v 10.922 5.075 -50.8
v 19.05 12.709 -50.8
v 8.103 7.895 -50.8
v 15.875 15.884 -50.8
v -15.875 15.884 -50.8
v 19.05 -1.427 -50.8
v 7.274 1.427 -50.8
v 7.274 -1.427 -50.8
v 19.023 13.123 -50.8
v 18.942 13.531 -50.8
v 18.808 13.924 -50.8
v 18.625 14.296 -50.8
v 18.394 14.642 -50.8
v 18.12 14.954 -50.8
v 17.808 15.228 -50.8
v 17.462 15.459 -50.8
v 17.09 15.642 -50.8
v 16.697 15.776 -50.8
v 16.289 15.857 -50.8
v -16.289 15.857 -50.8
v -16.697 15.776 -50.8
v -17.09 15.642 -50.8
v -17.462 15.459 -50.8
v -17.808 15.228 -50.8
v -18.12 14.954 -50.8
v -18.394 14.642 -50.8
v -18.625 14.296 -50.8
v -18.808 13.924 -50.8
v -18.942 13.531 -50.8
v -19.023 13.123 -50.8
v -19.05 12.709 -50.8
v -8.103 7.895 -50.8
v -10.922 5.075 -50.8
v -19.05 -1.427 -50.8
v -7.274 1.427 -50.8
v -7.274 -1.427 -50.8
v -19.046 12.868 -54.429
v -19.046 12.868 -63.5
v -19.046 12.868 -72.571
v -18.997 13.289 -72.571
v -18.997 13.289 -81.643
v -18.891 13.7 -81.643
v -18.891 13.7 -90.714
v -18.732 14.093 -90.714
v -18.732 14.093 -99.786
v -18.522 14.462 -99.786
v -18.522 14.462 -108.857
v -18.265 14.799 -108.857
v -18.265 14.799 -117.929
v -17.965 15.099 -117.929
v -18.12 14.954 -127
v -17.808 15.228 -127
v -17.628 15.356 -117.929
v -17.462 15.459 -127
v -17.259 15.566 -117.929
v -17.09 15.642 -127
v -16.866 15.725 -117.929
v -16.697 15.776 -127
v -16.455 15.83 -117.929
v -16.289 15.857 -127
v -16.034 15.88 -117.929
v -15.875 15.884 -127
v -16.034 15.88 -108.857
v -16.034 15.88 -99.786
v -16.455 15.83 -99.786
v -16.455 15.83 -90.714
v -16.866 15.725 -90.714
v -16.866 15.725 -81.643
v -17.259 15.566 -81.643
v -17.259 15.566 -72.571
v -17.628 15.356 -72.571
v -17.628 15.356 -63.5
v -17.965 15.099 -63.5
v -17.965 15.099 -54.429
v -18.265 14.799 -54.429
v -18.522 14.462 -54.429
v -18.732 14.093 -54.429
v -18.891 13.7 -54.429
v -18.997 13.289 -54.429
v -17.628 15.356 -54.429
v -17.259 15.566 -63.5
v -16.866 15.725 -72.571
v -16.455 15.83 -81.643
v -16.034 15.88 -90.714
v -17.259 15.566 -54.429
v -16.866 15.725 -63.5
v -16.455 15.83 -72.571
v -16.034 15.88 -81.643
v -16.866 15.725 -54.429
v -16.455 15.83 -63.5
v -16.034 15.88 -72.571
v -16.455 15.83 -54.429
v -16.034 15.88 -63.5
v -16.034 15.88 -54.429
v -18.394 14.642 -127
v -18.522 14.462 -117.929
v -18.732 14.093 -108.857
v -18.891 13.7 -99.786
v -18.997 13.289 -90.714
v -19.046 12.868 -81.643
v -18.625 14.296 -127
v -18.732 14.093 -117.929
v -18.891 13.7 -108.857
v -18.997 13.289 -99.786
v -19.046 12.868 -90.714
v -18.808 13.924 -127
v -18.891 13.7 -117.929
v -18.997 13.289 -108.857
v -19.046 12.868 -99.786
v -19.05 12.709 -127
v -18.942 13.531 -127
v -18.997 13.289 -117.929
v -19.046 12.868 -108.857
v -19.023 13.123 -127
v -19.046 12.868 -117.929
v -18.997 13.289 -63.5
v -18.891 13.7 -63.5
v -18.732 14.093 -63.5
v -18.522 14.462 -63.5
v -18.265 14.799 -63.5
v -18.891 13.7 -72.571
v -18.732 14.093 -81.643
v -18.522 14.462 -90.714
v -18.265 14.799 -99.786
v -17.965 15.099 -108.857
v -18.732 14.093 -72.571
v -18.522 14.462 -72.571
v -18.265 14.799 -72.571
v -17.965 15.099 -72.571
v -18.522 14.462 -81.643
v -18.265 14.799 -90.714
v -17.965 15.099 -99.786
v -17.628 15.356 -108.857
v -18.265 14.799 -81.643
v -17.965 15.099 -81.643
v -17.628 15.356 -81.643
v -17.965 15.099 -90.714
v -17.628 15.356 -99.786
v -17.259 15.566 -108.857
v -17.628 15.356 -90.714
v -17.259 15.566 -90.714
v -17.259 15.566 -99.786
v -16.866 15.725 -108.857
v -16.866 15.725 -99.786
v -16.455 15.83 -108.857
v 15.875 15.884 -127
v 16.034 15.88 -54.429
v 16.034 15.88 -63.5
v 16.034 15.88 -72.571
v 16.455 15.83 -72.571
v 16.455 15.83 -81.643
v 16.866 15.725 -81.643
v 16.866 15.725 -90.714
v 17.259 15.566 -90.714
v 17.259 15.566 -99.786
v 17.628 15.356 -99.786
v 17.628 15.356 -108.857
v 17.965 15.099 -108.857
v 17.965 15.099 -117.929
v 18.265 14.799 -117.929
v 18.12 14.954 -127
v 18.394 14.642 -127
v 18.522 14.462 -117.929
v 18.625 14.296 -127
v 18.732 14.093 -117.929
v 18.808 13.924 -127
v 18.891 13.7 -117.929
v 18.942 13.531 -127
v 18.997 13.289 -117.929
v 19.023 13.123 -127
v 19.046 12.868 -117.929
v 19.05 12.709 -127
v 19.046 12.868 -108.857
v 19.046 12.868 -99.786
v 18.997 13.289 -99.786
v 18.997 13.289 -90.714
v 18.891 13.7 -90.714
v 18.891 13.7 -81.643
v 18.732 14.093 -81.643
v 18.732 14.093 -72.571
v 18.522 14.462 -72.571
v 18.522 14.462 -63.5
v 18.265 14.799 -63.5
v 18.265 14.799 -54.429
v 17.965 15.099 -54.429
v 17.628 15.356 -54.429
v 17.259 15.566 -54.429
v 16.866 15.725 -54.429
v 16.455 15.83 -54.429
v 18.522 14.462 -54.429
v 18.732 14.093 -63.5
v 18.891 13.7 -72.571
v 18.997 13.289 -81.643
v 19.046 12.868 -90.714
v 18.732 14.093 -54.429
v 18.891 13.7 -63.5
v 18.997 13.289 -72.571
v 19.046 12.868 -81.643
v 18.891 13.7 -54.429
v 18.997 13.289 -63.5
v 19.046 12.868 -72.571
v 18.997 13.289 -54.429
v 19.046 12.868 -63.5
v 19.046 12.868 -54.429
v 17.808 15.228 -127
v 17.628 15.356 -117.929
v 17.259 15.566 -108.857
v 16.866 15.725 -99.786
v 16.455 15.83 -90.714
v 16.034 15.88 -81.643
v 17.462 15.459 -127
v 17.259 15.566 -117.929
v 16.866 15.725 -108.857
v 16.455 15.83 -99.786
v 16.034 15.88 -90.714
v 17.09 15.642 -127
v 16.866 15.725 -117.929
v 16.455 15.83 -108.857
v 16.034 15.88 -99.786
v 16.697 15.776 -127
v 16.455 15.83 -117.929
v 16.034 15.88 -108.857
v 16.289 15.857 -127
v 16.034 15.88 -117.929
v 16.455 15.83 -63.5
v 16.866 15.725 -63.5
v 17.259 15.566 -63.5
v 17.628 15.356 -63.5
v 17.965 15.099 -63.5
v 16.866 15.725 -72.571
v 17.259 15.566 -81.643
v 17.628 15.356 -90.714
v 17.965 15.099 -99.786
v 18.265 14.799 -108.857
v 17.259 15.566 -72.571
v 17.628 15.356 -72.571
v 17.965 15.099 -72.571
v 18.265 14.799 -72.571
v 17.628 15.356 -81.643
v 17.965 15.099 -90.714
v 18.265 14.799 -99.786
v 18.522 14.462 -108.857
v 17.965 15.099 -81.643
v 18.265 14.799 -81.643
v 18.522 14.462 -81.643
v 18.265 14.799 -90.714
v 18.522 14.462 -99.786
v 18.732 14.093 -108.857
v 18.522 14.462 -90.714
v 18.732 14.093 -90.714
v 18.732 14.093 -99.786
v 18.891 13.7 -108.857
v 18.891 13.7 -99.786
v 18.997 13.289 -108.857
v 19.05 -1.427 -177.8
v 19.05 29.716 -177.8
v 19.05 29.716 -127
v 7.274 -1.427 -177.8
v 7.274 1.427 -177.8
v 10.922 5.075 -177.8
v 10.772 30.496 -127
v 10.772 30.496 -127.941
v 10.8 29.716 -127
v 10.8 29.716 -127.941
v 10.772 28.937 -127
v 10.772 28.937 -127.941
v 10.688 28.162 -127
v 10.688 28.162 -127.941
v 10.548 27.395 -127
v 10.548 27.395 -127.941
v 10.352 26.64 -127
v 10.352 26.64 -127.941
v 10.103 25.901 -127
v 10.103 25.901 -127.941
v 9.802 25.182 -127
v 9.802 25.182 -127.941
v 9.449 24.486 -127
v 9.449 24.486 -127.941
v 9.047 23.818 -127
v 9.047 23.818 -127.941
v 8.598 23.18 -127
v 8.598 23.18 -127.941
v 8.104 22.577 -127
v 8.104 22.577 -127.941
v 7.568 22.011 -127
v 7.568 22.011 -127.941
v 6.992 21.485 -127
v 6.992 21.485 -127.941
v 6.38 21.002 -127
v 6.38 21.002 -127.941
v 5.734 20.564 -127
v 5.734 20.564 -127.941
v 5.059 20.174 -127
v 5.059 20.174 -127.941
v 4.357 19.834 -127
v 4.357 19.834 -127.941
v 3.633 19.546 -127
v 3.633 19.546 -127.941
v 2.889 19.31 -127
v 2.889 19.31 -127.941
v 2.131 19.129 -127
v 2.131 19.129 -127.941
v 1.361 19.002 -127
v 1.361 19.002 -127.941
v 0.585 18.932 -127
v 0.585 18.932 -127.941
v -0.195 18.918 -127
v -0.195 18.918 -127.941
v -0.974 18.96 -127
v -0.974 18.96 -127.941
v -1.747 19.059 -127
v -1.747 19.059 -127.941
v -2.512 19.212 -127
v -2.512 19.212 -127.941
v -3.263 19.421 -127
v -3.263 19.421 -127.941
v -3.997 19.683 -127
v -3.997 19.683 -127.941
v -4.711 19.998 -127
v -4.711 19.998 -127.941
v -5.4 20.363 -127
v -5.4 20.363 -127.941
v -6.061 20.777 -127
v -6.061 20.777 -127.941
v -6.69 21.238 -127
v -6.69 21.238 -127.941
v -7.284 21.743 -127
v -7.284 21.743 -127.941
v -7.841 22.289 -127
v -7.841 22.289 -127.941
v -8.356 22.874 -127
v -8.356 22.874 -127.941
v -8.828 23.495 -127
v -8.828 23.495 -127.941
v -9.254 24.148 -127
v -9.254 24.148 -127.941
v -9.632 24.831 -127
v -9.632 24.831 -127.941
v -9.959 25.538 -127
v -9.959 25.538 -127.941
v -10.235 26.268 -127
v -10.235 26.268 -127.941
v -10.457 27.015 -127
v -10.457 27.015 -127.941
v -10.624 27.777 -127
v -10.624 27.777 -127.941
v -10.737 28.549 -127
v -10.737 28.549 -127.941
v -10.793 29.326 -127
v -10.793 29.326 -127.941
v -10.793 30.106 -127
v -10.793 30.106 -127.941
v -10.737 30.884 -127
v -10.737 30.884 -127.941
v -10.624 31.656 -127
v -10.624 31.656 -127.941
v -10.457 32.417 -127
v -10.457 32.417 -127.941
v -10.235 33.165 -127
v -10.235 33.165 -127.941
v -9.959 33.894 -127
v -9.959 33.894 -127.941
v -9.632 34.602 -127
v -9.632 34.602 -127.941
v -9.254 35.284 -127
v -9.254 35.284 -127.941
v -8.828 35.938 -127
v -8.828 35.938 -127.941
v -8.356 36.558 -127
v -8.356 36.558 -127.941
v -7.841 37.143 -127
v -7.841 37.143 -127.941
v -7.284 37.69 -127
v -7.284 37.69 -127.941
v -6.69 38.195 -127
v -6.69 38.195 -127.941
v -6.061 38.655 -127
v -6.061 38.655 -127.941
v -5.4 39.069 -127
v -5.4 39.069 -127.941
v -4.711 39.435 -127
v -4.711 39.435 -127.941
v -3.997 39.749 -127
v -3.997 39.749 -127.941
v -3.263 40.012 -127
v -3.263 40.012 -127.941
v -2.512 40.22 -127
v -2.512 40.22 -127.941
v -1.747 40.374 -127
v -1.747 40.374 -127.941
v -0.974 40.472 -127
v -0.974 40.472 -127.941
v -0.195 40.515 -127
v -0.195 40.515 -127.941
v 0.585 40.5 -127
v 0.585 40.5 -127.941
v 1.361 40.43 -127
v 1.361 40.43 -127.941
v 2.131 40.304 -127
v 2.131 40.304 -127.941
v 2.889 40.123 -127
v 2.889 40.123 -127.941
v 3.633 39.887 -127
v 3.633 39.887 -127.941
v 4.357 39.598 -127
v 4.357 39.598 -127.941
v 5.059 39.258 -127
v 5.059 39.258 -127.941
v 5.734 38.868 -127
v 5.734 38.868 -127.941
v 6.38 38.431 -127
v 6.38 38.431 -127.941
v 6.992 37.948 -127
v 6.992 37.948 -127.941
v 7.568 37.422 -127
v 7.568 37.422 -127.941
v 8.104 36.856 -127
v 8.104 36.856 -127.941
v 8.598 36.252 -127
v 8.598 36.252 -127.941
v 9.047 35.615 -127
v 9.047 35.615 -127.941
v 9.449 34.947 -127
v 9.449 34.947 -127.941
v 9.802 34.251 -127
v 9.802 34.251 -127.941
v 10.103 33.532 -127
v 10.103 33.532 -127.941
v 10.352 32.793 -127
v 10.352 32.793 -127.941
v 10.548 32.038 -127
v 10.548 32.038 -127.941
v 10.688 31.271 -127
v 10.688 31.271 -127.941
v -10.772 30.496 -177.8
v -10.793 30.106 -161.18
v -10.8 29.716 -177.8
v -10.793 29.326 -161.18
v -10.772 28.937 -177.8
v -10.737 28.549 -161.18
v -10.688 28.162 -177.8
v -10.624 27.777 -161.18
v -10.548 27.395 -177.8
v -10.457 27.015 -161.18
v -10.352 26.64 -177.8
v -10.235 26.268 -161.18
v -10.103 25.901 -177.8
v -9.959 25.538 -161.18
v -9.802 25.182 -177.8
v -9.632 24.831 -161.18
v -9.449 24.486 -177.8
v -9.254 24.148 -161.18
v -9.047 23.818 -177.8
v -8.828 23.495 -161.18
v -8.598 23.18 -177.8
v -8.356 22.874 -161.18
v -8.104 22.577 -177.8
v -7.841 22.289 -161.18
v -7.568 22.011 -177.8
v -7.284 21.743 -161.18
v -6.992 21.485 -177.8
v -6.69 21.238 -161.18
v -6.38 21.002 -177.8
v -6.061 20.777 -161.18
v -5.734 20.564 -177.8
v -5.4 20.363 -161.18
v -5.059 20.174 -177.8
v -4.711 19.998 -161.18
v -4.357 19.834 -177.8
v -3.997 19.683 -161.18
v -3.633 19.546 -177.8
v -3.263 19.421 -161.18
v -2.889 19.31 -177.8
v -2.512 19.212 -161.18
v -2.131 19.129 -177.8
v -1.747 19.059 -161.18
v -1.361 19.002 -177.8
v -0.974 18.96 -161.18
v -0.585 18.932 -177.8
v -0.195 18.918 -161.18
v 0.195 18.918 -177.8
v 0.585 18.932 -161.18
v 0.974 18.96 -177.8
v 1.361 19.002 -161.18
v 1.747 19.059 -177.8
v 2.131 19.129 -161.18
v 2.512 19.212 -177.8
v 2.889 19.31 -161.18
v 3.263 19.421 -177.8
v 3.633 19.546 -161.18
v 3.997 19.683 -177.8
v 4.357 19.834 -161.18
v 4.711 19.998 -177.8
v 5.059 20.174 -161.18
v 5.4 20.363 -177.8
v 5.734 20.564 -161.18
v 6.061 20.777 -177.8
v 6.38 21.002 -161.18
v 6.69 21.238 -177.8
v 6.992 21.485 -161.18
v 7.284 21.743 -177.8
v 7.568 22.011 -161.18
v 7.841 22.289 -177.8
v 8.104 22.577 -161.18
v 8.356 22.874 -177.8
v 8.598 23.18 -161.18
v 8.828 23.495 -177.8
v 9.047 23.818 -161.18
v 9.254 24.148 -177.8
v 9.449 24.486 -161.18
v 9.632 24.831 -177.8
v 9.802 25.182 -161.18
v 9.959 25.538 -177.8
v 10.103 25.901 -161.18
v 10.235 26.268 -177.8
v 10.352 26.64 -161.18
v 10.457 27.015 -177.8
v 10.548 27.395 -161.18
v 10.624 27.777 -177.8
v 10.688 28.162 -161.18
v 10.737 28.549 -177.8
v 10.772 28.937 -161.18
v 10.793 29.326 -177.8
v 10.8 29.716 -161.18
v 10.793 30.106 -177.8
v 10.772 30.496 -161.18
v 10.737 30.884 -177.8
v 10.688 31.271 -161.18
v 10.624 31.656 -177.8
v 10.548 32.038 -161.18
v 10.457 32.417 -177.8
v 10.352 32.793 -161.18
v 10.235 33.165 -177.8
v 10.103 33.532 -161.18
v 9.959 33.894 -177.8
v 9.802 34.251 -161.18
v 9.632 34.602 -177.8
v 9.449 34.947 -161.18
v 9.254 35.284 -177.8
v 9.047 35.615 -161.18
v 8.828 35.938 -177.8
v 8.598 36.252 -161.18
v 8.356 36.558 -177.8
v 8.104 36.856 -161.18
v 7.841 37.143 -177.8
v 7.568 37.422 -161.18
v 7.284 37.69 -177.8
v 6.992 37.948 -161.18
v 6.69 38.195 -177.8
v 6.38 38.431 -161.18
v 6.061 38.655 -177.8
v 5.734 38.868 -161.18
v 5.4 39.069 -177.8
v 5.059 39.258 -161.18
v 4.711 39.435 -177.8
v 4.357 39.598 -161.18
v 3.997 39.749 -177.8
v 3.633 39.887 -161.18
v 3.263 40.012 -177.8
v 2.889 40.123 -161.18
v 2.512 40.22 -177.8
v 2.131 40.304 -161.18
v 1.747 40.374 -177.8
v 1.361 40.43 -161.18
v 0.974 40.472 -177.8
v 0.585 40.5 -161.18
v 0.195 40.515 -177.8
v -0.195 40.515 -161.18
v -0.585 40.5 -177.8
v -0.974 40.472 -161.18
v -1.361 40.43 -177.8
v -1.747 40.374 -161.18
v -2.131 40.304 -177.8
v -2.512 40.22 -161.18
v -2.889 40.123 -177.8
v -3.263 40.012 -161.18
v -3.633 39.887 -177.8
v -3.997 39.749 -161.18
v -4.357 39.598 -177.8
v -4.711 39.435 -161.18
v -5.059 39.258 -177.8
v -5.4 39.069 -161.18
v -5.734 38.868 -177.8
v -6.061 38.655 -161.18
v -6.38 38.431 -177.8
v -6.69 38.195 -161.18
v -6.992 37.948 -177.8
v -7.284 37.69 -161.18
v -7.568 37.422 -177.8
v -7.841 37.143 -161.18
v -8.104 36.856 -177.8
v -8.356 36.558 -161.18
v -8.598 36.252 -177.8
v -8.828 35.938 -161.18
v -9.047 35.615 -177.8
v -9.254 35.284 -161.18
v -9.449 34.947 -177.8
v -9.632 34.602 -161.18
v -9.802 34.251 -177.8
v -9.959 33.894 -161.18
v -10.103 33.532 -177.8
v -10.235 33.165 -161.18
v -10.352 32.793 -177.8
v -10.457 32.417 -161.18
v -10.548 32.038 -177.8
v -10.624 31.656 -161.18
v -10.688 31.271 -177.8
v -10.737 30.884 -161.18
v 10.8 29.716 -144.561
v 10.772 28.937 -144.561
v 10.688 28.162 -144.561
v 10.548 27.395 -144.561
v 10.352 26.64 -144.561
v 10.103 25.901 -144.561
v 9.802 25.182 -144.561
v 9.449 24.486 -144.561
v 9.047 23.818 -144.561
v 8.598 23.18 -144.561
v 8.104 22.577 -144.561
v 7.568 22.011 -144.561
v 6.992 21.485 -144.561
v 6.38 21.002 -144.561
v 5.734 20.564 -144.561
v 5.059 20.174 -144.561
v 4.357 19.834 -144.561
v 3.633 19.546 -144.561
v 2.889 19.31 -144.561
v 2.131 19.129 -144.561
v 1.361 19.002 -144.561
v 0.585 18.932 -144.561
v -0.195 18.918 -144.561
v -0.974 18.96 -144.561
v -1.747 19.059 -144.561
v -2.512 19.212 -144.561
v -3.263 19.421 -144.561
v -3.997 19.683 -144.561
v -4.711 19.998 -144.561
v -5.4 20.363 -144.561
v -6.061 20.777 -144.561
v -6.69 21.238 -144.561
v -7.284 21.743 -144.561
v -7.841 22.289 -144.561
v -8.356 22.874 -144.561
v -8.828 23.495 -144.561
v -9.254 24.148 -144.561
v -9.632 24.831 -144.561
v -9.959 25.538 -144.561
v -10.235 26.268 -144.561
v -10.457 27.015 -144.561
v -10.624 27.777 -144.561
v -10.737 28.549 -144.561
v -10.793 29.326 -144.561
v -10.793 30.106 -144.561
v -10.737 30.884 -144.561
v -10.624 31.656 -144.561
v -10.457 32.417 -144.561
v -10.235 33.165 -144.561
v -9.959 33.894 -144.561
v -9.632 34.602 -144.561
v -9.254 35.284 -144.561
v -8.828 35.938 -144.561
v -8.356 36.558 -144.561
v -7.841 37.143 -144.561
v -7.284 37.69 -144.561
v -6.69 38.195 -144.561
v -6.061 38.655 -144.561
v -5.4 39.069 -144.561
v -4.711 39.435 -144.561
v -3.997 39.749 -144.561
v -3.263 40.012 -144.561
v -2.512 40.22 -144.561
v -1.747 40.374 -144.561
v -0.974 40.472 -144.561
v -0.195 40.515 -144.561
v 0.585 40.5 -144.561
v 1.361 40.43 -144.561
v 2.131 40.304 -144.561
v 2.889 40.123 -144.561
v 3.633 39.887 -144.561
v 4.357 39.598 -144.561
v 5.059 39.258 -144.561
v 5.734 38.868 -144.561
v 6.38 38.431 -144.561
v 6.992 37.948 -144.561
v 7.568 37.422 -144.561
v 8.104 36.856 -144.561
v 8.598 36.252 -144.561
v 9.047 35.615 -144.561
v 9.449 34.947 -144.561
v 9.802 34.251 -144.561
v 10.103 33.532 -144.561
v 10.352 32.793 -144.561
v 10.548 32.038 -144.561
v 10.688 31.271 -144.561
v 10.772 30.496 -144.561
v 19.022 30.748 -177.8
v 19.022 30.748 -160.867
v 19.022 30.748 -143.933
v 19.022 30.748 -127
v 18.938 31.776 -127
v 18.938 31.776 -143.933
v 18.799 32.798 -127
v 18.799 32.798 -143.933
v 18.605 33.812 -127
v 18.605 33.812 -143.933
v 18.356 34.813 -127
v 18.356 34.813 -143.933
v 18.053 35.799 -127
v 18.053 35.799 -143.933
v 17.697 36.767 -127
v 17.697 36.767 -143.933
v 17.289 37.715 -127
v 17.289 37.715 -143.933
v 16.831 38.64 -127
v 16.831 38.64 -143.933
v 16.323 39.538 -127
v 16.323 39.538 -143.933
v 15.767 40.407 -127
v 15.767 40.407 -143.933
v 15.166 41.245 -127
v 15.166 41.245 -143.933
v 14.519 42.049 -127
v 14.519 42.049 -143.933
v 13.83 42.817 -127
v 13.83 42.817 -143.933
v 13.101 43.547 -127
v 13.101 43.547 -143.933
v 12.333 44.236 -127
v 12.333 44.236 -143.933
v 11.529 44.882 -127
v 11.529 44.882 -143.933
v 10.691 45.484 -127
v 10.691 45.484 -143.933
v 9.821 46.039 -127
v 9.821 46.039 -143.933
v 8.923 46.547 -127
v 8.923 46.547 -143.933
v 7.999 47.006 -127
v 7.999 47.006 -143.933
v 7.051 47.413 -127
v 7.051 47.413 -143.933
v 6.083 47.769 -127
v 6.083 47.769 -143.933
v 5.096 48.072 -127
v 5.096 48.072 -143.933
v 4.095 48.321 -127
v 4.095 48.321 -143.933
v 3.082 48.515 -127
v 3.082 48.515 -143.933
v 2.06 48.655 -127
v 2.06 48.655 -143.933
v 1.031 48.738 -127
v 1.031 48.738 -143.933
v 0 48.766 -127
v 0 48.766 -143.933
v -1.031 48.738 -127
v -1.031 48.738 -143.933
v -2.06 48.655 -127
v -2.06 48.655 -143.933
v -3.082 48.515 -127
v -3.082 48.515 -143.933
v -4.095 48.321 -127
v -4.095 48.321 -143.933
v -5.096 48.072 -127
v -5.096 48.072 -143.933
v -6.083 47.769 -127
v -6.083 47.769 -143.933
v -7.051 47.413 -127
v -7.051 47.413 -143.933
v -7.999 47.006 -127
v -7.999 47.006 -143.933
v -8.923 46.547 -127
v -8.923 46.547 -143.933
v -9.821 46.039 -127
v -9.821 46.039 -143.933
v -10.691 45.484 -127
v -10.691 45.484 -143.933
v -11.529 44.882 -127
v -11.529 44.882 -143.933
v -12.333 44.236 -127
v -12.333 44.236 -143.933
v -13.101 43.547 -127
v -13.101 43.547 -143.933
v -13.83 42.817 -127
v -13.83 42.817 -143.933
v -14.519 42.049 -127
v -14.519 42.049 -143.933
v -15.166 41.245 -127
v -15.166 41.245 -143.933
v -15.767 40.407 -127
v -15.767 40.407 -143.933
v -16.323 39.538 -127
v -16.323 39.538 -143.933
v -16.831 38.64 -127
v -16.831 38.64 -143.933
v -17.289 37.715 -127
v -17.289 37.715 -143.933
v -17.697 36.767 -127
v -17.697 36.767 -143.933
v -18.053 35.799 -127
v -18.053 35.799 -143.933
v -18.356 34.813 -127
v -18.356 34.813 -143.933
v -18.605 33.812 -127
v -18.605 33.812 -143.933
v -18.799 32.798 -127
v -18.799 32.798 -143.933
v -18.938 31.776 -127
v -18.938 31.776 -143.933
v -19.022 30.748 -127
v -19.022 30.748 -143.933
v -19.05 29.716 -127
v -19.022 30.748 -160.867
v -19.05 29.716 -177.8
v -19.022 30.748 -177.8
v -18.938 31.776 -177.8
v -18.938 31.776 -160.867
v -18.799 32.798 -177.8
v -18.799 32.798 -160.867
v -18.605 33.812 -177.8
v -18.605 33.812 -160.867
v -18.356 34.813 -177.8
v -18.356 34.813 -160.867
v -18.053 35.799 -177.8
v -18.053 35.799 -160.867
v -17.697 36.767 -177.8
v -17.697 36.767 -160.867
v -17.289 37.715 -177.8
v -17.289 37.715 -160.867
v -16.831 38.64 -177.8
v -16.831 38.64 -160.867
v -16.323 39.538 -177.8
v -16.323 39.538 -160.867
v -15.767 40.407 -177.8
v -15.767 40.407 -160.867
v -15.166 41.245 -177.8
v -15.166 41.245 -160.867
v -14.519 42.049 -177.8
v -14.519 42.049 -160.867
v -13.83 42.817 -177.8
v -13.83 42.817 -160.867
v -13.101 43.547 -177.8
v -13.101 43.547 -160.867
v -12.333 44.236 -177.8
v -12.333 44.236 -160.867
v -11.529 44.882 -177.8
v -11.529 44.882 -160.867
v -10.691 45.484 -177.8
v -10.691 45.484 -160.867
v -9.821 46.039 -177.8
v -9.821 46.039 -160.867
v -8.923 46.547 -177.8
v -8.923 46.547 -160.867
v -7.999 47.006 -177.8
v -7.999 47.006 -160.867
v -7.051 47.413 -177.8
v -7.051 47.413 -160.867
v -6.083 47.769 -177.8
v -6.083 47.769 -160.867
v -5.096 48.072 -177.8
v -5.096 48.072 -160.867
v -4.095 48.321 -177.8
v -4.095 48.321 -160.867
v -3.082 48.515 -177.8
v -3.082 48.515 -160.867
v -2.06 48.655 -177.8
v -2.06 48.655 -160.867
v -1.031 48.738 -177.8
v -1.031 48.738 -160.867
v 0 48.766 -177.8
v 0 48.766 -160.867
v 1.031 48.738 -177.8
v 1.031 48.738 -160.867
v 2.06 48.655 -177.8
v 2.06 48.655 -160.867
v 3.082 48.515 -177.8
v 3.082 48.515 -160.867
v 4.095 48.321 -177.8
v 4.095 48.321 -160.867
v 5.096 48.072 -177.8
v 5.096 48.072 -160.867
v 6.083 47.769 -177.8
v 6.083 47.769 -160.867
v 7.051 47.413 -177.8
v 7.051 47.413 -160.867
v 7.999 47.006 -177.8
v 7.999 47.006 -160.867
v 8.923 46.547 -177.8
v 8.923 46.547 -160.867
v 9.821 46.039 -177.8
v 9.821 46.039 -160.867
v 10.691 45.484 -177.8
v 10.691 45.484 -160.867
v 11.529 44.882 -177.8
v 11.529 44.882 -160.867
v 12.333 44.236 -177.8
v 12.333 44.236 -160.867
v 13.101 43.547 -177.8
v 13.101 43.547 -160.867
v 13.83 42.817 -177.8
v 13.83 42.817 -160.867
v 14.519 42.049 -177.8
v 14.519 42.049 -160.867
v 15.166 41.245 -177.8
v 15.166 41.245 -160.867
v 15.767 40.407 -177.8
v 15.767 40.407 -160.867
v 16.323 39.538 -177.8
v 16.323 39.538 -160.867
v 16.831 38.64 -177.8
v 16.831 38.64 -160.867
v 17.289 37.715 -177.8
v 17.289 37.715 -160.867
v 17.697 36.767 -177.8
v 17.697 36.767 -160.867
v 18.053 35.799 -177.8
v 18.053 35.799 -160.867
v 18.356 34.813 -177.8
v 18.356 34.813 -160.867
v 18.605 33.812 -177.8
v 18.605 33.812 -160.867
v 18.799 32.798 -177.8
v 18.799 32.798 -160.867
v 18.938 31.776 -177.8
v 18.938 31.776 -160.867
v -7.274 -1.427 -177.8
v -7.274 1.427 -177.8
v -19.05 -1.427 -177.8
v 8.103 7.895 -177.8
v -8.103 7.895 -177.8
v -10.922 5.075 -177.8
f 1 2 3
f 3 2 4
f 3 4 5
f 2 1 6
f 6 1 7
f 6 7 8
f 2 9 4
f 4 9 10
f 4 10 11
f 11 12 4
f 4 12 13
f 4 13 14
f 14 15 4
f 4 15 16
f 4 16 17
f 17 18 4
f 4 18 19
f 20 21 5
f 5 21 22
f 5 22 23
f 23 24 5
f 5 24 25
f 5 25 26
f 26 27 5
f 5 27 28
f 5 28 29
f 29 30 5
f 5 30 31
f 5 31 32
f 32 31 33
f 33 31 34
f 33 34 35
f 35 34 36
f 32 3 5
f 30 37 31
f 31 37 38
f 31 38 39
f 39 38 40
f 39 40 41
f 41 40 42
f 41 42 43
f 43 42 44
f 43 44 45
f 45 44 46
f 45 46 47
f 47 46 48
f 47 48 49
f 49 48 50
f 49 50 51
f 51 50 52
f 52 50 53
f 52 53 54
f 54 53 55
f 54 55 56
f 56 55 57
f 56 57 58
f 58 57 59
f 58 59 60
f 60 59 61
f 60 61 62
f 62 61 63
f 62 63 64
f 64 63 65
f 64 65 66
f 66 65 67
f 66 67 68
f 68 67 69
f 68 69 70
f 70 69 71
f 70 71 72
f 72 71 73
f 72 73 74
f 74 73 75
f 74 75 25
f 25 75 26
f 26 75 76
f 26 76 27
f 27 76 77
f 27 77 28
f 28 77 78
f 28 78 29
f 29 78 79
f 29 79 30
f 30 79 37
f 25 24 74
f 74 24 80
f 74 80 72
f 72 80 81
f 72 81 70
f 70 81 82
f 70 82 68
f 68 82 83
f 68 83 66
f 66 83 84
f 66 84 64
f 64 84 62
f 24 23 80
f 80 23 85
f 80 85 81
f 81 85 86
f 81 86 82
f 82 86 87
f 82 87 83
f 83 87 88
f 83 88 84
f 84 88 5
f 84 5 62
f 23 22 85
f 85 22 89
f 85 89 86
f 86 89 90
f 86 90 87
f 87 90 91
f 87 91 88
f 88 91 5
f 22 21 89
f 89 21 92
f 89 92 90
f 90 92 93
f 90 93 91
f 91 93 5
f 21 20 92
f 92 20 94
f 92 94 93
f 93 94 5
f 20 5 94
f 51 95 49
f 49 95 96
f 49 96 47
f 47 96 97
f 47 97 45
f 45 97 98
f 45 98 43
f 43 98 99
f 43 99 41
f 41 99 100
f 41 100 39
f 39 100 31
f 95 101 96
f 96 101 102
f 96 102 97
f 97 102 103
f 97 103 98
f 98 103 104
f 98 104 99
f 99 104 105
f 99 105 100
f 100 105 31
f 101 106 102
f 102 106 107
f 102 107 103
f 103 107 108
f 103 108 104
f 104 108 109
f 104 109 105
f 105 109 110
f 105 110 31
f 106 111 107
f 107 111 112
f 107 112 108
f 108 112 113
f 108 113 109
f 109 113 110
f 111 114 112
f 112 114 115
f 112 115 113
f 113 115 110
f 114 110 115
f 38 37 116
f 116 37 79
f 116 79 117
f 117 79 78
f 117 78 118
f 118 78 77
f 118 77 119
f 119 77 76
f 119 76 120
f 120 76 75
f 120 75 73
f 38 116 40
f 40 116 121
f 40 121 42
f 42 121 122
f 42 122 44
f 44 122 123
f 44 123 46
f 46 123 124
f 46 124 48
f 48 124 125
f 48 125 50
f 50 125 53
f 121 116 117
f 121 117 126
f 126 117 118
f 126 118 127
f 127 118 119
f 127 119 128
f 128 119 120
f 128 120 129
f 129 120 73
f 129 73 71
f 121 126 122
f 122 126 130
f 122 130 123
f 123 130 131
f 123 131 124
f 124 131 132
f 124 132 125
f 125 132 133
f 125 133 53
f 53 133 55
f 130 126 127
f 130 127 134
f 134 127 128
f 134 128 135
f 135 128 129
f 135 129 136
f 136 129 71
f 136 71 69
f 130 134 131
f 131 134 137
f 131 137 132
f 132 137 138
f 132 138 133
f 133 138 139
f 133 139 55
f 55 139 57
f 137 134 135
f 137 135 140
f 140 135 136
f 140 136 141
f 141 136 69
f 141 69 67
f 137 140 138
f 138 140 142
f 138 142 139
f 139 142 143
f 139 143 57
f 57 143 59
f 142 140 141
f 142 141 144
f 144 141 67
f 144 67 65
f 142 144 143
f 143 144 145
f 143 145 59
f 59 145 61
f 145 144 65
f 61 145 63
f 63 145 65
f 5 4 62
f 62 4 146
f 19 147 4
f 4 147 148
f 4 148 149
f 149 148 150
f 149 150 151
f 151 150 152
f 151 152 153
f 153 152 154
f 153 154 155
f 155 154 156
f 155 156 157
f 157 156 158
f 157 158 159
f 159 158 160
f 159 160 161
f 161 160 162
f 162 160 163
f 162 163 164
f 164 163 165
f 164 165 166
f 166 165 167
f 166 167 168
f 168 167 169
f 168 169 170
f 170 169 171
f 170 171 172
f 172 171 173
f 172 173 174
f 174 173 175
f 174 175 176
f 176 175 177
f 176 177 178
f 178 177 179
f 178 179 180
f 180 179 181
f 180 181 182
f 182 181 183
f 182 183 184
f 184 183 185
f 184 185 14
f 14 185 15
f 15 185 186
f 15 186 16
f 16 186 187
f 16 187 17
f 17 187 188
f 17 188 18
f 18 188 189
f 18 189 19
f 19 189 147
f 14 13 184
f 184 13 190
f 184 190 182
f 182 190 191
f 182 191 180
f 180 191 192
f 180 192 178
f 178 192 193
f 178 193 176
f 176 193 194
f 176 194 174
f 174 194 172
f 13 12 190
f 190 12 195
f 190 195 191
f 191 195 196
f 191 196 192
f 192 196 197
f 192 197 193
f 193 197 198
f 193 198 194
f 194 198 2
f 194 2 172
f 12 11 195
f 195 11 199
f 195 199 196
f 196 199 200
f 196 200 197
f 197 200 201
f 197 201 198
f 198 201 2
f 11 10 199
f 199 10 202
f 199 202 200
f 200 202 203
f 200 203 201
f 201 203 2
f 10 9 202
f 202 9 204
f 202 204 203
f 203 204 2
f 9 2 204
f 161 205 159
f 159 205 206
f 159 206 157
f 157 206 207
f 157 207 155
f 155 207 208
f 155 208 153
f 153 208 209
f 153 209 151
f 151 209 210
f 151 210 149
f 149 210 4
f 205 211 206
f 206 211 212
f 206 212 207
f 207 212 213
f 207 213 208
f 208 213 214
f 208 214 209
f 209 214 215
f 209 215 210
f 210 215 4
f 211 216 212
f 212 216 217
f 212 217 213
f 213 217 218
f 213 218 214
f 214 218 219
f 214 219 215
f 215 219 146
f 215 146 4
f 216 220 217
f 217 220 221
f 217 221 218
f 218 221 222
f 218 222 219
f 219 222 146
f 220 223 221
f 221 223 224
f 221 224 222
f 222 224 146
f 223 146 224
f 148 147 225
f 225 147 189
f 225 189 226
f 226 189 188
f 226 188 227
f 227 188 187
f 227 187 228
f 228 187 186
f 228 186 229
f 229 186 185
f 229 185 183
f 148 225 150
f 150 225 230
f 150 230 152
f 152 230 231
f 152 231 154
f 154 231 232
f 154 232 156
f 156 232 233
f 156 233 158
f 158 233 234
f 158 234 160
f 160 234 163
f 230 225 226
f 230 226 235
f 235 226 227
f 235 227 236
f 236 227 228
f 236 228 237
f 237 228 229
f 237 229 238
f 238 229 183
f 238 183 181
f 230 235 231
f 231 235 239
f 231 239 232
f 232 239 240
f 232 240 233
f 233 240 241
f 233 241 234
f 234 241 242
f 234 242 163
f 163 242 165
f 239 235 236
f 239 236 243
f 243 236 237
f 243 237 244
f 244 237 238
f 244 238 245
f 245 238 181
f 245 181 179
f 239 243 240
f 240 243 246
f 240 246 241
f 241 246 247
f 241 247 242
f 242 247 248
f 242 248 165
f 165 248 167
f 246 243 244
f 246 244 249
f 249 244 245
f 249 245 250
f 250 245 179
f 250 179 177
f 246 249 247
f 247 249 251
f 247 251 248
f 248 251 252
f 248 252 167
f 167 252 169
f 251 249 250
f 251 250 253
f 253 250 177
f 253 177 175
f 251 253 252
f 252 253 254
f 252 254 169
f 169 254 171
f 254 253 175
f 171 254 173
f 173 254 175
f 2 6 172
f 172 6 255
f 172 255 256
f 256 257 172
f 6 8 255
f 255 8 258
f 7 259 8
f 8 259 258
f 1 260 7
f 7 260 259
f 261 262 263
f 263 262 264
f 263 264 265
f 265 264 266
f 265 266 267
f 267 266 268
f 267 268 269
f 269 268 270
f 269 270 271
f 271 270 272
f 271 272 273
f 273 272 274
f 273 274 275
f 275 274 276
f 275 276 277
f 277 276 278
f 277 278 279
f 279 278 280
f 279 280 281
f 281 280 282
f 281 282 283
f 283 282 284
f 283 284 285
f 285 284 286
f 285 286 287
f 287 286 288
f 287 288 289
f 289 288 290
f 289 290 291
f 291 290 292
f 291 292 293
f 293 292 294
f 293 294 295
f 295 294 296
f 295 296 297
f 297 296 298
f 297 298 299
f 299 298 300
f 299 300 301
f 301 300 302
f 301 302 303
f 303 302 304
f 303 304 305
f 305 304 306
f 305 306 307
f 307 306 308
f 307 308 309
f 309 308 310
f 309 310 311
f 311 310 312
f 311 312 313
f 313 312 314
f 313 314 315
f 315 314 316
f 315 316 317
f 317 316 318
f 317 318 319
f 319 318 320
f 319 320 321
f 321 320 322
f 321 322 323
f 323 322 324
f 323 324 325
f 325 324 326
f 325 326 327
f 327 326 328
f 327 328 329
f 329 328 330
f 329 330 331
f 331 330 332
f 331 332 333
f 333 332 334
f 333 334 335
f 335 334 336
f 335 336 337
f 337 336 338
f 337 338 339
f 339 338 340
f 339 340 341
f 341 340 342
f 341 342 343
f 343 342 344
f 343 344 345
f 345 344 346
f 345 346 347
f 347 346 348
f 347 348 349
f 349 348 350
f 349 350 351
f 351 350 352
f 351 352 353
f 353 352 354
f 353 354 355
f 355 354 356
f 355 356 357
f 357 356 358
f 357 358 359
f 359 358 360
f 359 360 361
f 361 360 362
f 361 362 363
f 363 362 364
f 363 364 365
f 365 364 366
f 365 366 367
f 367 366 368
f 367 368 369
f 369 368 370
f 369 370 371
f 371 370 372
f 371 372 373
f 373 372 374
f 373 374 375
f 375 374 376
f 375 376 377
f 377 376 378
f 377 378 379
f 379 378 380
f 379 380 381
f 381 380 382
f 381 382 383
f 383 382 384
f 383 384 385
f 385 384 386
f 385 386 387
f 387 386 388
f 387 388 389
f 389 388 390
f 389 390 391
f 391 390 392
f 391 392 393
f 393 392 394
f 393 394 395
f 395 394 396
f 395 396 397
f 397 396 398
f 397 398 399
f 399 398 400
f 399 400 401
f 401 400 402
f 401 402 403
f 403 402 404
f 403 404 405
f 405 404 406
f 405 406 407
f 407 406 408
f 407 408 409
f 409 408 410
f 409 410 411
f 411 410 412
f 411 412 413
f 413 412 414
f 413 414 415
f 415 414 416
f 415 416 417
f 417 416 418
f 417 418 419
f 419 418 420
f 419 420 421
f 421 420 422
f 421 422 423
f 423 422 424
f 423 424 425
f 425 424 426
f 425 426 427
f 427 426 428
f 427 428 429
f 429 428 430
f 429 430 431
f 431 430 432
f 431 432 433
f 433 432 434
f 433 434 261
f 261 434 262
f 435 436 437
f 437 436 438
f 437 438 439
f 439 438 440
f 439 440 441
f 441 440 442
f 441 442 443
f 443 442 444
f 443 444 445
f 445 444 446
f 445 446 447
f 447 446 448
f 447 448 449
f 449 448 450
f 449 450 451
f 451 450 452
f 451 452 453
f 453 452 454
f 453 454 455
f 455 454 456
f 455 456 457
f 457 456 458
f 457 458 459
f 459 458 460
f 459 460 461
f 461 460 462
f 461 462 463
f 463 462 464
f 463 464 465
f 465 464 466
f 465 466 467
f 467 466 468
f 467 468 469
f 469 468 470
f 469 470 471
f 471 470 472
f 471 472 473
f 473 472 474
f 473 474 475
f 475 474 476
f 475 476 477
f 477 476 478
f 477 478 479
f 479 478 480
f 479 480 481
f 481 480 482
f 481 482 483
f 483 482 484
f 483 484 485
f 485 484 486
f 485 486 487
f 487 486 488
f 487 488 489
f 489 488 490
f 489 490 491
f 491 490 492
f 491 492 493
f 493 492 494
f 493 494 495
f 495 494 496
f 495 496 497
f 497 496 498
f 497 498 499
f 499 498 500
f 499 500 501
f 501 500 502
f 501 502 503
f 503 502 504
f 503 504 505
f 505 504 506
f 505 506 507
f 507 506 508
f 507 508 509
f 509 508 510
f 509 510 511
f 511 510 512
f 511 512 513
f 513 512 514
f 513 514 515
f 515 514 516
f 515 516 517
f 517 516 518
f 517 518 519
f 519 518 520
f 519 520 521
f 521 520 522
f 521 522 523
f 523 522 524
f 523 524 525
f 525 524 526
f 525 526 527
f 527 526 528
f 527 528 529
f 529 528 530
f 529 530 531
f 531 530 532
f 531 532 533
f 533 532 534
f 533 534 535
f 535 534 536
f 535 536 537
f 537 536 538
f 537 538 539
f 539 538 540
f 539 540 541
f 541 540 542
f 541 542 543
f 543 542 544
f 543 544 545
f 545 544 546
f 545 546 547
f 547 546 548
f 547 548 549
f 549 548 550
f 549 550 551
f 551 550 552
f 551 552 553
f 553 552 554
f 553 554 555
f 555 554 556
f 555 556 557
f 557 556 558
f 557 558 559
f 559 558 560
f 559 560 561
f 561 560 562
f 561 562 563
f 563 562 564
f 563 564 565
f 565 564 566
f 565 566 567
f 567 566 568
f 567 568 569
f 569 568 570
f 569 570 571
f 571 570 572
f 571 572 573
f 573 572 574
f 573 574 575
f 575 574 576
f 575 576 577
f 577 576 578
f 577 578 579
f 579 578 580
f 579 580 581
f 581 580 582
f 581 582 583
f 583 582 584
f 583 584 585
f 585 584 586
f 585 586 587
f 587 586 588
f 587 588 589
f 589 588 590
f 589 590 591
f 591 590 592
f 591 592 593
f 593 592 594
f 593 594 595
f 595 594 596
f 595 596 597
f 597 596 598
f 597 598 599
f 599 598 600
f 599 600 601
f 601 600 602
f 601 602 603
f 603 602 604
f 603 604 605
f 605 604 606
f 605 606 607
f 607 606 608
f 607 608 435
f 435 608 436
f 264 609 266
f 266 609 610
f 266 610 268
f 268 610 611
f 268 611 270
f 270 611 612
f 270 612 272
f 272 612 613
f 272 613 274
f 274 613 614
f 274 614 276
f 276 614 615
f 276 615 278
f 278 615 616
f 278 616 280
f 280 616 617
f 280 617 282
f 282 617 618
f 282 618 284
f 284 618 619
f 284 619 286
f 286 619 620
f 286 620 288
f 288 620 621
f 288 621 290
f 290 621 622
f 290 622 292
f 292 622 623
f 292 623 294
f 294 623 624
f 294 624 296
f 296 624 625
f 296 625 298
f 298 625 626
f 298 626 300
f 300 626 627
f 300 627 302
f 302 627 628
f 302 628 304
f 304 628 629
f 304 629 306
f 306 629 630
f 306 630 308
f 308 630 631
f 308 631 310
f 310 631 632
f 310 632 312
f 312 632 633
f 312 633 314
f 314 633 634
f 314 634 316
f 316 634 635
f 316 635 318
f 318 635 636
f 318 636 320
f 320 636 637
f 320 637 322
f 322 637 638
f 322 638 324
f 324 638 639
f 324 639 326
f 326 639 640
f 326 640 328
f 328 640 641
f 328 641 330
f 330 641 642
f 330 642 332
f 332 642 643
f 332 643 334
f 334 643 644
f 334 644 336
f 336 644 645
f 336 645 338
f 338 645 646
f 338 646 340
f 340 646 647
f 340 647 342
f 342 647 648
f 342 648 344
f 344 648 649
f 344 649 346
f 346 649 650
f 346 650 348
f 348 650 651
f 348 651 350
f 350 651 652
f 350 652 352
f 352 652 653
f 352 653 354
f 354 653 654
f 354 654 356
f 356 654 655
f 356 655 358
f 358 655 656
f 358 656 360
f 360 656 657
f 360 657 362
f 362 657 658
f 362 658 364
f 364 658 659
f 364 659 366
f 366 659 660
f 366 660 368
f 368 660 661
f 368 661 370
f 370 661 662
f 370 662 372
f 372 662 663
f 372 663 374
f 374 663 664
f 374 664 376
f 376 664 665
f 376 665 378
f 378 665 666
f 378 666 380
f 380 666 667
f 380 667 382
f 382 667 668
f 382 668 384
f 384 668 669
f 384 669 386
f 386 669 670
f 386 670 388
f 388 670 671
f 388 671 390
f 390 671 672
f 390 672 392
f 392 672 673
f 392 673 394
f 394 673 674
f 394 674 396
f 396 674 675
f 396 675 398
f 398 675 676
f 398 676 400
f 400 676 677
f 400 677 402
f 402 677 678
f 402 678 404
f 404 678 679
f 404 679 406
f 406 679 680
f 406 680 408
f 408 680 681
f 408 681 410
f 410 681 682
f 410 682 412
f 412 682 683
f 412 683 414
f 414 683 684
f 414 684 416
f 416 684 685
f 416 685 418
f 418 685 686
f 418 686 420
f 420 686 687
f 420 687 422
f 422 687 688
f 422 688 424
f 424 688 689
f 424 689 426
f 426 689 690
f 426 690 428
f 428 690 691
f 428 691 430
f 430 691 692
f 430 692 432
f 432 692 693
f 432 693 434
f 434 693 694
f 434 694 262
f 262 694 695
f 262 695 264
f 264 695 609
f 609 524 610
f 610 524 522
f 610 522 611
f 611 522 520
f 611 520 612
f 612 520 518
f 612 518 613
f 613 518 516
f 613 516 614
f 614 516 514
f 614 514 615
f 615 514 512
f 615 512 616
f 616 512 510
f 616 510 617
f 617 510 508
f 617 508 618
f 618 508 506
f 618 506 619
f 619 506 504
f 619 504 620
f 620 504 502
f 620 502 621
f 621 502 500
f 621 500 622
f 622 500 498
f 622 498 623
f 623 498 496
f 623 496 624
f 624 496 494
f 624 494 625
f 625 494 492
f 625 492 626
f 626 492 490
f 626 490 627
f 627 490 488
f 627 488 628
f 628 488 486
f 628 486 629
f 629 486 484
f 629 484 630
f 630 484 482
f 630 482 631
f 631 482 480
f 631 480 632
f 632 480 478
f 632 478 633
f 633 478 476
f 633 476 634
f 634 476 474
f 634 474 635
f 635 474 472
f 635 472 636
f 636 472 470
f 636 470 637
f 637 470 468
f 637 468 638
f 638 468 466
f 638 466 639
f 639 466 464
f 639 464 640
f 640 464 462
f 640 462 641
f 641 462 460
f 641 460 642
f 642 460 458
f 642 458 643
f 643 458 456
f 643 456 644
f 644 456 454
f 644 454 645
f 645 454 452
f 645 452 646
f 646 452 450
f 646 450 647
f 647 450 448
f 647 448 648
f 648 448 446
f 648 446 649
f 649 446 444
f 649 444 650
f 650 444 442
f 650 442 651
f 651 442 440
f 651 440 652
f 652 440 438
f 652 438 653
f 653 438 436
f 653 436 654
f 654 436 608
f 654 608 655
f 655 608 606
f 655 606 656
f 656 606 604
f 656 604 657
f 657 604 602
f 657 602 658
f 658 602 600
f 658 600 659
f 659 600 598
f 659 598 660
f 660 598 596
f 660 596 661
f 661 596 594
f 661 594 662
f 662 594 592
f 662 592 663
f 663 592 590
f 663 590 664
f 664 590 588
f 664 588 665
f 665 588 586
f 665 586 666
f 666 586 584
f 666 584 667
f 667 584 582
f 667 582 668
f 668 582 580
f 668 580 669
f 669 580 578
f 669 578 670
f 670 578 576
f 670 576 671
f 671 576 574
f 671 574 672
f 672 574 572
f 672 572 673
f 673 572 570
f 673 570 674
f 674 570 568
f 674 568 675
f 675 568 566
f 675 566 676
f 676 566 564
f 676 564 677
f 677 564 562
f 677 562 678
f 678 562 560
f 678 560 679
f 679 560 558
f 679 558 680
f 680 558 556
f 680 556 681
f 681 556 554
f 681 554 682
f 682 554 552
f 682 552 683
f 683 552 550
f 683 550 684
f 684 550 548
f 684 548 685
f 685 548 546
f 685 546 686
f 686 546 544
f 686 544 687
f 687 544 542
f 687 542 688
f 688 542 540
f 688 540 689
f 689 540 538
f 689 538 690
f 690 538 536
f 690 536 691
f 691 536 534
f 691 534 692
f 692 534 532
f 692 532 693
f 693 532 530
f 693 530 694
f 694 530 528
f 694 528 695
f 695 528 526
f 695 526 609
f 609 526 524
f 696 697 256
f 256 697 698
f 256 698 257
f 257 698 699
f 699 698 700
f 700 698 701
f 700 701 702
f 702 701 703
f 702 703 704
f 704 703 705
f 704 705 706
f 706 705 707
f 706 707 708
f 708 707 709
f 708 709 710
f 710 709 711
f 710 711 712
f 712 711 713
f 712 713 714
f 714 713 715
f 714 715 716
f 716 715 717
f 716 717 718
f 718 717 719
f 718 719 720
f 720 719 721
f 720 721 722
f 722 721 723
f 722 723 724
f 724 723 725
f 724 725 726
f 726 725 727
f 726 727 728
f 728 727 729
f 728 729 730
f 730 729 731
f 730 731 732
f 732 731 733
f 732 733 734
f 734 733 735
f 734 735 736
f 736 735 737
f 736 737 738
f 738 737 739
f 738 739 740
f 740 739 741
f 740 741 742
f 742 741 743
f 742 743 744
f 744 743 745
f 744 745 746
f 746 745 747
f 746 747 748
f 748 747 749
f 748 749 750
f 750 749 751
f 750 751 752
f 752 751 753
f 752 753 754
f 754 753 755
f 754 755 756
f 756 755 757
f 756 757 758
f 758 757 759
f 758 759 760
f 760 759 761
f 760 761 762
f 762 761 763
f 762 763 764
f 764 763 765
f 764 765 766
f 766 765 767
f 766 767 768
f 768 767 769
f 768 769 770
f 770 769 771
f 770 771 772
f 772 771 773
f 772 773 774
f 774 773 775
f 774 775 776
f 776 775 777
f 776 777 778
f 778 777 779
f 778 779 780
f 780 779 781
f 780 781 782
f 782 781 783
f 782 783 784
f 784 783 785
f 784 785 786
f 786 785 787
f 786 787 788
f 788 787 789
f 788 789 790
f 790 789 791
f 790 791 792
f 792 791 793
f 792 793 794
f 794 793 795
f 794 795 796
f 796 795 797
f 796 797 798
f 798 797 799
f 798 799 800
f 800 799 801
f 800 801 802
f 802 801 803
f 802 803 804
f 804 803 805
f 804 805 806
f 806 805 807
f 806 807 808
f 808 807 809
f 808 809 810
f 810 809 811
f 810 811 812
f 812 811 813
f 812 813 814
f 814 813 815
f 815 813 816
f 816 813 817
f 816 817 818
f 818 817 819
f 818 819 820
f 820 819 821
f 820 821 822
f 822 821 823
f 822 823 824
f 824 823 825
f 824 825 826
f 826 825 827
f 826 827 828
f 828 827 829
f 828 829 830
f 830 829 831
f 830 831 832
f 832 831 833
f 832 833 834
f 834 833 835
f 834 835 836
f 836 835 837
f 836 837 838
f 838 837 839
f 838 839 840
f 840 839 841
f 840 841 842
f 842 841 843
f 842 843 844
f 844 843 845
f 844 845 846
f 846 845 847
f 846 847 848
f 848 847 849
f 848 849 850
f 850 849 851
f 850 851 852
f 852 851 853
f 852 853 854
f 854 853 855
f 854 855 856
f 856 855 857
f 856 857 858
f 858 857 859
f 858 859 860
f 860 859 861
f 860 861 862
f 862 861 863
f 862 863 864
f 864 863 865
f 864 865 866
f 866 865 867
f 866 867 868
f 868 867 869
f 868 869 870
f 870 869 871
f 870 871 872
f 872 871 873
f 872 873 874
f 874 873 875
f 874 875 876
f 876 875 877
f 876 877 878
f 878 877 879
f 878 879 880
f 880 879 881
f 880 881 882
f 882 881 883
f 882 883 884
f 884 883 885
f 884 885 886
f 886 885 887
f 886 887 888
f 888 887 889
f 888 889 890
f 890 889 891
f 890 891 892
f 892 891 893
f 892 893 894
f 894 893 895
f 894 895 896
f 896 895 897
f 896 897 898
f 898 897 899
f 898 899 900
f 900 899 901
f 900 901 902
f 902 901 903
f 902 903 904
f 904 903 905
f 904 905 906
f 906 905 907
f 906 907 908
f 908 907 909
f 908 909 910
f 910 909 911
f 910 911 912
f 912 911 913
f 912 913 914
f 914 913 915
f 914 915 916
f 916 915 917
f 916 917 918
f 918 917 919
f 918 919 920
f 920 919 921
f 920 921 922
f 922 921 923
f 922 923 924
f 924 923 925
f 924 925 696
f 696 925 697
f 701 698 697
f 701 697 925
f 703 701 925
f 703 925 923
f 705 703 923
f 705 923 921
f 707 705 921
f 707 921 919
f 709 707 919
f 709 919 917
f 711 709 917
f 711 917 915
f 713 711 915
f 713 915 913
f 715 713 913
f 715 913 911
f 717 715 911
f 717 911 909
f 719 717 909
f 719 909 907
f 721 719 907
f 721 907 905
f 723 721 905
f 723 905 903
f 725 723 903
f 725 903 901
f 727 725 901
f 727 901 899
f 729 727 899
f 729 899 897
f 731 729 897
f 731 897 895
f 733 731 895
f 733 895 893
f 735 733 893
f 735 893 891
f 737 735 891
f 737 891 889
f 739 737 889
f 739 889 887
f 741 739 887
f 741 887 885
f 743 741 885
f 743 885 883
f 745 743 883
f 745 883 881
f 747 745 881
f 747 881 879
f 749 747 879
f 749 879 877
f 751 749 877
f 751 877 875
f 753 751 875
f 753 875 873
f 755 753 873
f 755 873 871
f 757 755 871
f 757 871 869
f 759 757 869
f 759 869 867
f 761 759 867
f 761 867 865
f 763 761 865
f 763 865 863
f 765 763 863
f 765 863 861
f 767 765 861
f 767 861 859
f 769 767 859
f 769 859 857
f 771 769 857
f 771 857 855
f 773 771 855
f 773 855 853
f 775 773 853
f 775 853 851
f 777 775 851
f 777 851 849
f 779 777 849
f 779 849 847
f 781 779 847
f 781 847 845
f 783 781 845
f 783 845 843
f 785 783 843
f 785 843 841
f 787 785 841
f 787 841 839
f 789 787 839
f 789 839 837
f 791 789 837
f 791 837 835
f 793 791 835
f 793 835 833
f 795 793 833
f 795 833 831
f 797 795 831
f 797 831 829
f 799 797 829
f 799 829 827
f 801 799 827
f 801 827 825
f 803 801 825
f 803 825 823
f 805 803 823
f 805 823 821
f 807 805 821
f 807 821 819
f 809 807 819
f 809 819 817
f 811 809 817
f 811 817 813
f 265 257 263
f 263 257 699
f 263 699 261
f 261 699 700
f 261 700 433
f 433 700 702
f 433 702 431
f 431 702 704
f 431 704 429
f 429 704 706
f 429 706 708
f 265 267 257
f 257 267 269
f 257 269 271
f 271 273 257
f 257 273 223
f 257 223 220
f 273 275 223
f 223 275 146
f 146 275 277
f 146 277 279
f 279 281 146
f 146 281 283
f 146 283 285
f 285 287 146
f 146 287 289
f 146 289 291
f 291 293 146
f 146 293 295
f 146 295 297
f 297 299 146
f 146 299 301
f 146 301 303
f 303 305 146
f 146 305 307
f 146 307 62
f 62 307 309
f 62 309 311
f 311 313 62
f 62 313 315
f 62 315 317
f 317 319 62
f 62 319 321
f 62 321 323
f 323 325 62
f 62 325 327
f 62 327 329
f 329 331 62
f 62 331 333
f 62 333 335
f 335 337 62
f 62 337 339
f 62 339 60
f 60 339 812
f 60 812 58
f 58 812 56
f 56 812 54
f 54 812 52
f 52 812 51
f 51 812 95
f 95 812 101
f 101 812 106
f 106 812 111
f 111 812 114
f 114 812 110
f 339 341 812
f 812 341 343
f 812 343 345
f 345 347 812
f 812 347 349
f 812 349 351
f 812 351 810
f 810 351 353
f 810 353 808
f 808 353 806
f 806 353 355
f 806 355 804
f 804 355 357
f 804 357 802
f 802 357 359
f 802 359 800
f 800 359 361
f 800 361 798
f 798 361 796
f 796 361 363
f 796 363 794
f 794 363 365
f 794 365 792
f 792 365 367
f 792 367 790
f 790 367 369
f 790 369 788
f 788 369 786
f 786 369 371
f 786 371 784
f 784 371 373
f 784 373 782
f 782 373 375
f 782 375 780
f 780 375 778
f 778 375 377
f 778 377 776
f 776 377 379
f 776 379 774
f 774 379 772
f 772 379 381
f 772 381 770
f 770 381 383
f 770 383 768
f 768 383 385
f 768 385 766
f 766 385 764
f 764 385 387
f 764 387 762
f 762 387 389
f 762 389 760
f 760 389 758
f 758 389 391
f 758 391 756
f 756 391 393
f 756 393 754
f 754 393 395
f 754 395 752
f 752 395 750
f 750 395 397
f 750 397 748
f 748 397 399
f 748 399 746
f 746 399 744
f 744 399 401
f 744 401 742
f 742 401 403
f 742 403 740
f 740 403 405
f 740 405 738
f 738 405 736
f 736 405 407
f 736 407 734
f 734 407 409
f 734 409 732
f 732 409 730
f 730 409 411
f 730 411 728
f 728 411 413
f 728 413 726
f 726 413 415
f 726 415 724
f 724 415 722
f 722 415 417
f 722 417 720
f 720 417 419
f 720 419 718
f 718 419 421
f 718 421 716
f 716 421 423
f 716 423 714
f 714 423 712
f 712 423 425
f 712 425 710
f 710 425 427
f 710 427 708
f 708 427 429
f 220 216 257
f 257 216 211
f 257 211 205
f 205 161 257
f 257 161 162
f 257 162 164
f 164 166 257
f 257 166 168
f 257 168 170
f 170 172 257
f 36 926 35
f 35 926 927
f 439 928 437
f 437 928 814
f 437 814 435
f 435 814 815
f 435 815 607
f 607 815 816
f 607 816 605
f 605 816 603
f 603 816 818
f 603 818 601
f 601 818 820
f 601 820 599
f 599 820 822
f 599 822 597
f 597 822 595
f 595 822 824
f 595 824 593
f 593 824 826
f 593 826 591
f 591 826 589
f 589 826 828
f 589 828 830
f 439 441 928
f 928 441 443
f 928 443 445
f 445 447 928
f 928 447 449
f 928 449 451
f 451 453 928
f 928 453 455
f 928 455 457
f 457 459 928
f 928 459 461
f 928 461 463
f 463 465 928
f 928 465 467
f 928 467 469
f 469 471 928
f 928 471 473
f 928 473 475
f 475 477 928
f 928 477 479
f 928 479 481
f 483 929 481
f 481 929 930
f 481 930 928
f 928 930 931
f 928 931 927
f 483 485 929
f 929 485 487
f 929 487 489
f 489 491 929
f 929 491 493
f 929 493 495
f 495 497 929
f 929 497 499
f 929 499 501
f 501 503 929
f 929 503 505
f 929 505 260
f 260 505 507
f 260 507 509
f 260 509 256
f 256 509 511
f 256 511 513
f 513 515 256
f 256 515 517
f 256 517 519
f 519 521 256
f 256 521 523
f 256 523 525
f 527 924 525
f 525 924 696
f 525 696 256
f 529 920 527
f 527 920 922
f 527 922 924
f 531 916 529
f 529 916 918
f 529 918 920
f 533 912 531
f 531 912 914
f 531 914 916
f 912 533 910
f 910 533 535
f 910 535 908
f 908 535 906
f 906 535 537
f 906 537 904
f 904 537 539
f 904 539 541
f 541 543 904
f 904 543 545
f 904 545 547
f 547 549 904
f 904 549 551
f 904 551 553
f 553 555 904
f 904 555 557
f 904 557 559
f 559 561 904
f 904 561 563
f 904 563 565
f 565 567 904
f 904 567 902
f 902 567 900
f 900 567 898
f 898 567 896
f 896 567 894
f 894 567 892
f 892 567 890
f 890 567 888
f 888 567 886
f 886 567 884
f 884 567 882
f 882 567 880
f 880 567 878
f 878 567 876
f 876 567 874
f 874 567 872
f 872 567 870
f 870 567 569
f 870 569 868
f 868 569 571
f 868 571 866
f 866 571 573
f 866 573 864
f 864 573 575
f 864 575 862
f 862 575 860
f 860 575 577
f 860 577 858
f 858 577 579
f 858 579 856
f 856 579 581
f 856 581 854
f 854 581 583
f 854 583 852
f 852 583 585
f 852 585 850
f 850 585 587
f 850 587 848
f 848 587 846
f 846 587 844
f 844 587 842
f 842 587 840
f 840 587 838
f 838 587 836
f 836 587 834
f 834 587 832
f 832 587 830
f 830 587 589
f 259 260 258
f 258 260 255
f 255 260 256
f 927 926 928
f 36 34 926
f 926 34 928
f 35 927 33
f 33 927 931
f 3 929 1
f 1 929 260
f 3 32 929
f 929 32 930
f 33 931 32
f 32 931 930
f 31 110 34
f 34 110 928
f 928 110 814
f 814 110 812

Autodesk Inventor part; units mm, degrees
ref_plane "YZ Plane" through (0, 0, 0) normal (1, 0, 0) x (0, 1, 0)
ref_plane "XZ Plane" through (0, 0, 0) normal (0, 1, 0) x (-1, 0, 0)
ref_plane "XY Plane" through (0, 0, 0) normal (0, 0, 1) x (1, 0, 0)
sketch "Sketch1" plane through (0, 0, 0) normal (0, 0, 1) x (1, 0, 0)
  line L0 (-7.2739, -1.4271) -> (7.2739, -1.4271)
  line L1 (7.2739, -1.4271) -> (7.2739, 1.4271)
  line L2 (7.2739, 1.4271) -> (-7.2739, 1.4271)
  line L3 (-7.2739, 1.4271) -> (-7.2739, -1.4271)
  line L4 (-7.2739, -1.4271) -> (7.2739, 1.4271) construction
  line L5 (7.2739, -1.4271) -> (-7.2739, 1.4271) construction
  line L6 (9.525, 3.6783) -> (-9.525, 3.6783)
  line L7 (-9.525, 3.6783) -> (-9.525, 6.4723)
  line L8 (-9.525, 6.4723) -> (9.525, 6.4723)
  line L9 (9.525, 6.4723) -> (9.525, 3.6783)
  line L10 (9.525, 3.6783) -> (-9.525, 6.4723) construction
  line L11 (-9.525, 3.6783) -> (9.525, 6.4723) construction
  line L12 (-7.2739, 1.4271) -> (-9.525, 3.6783)
  line L13 (7.2739, 1.4271) -> (9.525, 3.6783)
  line L14 (-10.922, 5.0753) -> (-8.1026, 7.8947)
  line L15 (-10.922, 5.0753) -> (-6.9348, 5.0753) construction
  line L16 (-10.922, 5.0753) -> (-9.525, 3.6783)
  line L17 (10.922, 5.0753) -> (8.1026, 7.8947)
  line L18 (9.525, 3.6783) -> (10.922, 5.0753)
  line L19 (-8.1026, 7.8947) -> (8.1026, 7.8947)
  line L20 (-19.05, -1.4271) -> (19.05, -1.4271)
  line L21 (19.05, -1.4271) -> (19.05, 15.8839)
  line L22 (19.05, 15.8839) -> (-19.05, 15.8839)
  line L23 (-19.05, 15.8839) -> (-19.05, -1.4271)
  point P0 (0, 0)
  point P1 (0, 5.0753)
  point P2 (0, -1.4271)
  dimension "d0" = 135
  dimension "d1" = 135
  dimension "d2" = 19.05
  dimension "d3" = 2.794
  dimension "d4" = 45
  dimension "d5" = 4.2164
  dimension "d6" = 90
  dimension "d7" = 90
  dimension "d8" = 9.3218
  dimension "d9" = 38.1
extrude "Extrusion1" add sketch "Sketch1" against normal blind 177.8 contours L20 L23 L22 L21 L1 L13 L18 L17 L19 L14 L16 L12 L3
sketch "Sketch2" plane through (0, 0, -177.8) normal (0, 0, -1) x (-1, 0, 0)
  arc A0 (19.05, 29.7163) -> (-19.05, 29.7163) centre (0, 29.7163) ccw
  line L0 (19.05, -1.4271) -> (19.05, 15.8839) projected
  line L1 (19.05, 15.8839) -> (19.05, -1.4271) projected
  line L2 (19.05, 15.8839) -> (19.05, 29.7163)
  line L3 (-19.05, -1.4271) -> (-19.05, 15.8839) projected
  line L4 (-19.05, 15.8839) -> (-19.05, 29.7163)
  line L5 (19.05, 15.8839) -> (-19.05, 15.8839)
  point P0 (0, 0)
extrude "Extrusion2" add sketch "Sketch2" against normal blind 50.8
sketch "Sketch3" plane through (0, 0, -177.8) normal (0, 0, -1) x (-1, 0, 0)
  arc A0 (19.05, 29.7163) -> (-19.05, 29.7163) centre (0, 29.7163) ccw projected
  point P0 (0, 0)
hole "Hole1" at (0, 29.7163, -177.8) direction (0, 0, 1) diameter 21.6 end through all
fillet "Fillet1" radius 3.175 2 edges at (-19.05, 15.8839, -63.5) (19.05, 15.8839, -63.5)
sketch "Sketch4" plane through (0, 0, 0) normal (0, 0, 1) x (1, 0, 0)
  line L0 (-84.0587, 46.9015) -> (30.6415, 46.9015)
  line L1 (30.6415, 46.9015) -> (30.6415, -6.8679)
  line L2 (30.6415, -6.8679) -> (-84.0587, -6.8679)
  line L3 (-84.0587, -6.8679) -> (-84.0587, 46.9015)
  line L4 (-84.0587, 46.9015) -> (30.6415, -6.8679) construction
  line L5 (30.6415, 46.9015) -> (-84.0587, -6.8679) construction
  point P0 (0, 0)
  point P1 (-26.7086, 20.0168)
extrude "Extrusion3" cut sketch "Sketch4" against normal blind 50.8
properties part number "Laser mount 5 inches"
